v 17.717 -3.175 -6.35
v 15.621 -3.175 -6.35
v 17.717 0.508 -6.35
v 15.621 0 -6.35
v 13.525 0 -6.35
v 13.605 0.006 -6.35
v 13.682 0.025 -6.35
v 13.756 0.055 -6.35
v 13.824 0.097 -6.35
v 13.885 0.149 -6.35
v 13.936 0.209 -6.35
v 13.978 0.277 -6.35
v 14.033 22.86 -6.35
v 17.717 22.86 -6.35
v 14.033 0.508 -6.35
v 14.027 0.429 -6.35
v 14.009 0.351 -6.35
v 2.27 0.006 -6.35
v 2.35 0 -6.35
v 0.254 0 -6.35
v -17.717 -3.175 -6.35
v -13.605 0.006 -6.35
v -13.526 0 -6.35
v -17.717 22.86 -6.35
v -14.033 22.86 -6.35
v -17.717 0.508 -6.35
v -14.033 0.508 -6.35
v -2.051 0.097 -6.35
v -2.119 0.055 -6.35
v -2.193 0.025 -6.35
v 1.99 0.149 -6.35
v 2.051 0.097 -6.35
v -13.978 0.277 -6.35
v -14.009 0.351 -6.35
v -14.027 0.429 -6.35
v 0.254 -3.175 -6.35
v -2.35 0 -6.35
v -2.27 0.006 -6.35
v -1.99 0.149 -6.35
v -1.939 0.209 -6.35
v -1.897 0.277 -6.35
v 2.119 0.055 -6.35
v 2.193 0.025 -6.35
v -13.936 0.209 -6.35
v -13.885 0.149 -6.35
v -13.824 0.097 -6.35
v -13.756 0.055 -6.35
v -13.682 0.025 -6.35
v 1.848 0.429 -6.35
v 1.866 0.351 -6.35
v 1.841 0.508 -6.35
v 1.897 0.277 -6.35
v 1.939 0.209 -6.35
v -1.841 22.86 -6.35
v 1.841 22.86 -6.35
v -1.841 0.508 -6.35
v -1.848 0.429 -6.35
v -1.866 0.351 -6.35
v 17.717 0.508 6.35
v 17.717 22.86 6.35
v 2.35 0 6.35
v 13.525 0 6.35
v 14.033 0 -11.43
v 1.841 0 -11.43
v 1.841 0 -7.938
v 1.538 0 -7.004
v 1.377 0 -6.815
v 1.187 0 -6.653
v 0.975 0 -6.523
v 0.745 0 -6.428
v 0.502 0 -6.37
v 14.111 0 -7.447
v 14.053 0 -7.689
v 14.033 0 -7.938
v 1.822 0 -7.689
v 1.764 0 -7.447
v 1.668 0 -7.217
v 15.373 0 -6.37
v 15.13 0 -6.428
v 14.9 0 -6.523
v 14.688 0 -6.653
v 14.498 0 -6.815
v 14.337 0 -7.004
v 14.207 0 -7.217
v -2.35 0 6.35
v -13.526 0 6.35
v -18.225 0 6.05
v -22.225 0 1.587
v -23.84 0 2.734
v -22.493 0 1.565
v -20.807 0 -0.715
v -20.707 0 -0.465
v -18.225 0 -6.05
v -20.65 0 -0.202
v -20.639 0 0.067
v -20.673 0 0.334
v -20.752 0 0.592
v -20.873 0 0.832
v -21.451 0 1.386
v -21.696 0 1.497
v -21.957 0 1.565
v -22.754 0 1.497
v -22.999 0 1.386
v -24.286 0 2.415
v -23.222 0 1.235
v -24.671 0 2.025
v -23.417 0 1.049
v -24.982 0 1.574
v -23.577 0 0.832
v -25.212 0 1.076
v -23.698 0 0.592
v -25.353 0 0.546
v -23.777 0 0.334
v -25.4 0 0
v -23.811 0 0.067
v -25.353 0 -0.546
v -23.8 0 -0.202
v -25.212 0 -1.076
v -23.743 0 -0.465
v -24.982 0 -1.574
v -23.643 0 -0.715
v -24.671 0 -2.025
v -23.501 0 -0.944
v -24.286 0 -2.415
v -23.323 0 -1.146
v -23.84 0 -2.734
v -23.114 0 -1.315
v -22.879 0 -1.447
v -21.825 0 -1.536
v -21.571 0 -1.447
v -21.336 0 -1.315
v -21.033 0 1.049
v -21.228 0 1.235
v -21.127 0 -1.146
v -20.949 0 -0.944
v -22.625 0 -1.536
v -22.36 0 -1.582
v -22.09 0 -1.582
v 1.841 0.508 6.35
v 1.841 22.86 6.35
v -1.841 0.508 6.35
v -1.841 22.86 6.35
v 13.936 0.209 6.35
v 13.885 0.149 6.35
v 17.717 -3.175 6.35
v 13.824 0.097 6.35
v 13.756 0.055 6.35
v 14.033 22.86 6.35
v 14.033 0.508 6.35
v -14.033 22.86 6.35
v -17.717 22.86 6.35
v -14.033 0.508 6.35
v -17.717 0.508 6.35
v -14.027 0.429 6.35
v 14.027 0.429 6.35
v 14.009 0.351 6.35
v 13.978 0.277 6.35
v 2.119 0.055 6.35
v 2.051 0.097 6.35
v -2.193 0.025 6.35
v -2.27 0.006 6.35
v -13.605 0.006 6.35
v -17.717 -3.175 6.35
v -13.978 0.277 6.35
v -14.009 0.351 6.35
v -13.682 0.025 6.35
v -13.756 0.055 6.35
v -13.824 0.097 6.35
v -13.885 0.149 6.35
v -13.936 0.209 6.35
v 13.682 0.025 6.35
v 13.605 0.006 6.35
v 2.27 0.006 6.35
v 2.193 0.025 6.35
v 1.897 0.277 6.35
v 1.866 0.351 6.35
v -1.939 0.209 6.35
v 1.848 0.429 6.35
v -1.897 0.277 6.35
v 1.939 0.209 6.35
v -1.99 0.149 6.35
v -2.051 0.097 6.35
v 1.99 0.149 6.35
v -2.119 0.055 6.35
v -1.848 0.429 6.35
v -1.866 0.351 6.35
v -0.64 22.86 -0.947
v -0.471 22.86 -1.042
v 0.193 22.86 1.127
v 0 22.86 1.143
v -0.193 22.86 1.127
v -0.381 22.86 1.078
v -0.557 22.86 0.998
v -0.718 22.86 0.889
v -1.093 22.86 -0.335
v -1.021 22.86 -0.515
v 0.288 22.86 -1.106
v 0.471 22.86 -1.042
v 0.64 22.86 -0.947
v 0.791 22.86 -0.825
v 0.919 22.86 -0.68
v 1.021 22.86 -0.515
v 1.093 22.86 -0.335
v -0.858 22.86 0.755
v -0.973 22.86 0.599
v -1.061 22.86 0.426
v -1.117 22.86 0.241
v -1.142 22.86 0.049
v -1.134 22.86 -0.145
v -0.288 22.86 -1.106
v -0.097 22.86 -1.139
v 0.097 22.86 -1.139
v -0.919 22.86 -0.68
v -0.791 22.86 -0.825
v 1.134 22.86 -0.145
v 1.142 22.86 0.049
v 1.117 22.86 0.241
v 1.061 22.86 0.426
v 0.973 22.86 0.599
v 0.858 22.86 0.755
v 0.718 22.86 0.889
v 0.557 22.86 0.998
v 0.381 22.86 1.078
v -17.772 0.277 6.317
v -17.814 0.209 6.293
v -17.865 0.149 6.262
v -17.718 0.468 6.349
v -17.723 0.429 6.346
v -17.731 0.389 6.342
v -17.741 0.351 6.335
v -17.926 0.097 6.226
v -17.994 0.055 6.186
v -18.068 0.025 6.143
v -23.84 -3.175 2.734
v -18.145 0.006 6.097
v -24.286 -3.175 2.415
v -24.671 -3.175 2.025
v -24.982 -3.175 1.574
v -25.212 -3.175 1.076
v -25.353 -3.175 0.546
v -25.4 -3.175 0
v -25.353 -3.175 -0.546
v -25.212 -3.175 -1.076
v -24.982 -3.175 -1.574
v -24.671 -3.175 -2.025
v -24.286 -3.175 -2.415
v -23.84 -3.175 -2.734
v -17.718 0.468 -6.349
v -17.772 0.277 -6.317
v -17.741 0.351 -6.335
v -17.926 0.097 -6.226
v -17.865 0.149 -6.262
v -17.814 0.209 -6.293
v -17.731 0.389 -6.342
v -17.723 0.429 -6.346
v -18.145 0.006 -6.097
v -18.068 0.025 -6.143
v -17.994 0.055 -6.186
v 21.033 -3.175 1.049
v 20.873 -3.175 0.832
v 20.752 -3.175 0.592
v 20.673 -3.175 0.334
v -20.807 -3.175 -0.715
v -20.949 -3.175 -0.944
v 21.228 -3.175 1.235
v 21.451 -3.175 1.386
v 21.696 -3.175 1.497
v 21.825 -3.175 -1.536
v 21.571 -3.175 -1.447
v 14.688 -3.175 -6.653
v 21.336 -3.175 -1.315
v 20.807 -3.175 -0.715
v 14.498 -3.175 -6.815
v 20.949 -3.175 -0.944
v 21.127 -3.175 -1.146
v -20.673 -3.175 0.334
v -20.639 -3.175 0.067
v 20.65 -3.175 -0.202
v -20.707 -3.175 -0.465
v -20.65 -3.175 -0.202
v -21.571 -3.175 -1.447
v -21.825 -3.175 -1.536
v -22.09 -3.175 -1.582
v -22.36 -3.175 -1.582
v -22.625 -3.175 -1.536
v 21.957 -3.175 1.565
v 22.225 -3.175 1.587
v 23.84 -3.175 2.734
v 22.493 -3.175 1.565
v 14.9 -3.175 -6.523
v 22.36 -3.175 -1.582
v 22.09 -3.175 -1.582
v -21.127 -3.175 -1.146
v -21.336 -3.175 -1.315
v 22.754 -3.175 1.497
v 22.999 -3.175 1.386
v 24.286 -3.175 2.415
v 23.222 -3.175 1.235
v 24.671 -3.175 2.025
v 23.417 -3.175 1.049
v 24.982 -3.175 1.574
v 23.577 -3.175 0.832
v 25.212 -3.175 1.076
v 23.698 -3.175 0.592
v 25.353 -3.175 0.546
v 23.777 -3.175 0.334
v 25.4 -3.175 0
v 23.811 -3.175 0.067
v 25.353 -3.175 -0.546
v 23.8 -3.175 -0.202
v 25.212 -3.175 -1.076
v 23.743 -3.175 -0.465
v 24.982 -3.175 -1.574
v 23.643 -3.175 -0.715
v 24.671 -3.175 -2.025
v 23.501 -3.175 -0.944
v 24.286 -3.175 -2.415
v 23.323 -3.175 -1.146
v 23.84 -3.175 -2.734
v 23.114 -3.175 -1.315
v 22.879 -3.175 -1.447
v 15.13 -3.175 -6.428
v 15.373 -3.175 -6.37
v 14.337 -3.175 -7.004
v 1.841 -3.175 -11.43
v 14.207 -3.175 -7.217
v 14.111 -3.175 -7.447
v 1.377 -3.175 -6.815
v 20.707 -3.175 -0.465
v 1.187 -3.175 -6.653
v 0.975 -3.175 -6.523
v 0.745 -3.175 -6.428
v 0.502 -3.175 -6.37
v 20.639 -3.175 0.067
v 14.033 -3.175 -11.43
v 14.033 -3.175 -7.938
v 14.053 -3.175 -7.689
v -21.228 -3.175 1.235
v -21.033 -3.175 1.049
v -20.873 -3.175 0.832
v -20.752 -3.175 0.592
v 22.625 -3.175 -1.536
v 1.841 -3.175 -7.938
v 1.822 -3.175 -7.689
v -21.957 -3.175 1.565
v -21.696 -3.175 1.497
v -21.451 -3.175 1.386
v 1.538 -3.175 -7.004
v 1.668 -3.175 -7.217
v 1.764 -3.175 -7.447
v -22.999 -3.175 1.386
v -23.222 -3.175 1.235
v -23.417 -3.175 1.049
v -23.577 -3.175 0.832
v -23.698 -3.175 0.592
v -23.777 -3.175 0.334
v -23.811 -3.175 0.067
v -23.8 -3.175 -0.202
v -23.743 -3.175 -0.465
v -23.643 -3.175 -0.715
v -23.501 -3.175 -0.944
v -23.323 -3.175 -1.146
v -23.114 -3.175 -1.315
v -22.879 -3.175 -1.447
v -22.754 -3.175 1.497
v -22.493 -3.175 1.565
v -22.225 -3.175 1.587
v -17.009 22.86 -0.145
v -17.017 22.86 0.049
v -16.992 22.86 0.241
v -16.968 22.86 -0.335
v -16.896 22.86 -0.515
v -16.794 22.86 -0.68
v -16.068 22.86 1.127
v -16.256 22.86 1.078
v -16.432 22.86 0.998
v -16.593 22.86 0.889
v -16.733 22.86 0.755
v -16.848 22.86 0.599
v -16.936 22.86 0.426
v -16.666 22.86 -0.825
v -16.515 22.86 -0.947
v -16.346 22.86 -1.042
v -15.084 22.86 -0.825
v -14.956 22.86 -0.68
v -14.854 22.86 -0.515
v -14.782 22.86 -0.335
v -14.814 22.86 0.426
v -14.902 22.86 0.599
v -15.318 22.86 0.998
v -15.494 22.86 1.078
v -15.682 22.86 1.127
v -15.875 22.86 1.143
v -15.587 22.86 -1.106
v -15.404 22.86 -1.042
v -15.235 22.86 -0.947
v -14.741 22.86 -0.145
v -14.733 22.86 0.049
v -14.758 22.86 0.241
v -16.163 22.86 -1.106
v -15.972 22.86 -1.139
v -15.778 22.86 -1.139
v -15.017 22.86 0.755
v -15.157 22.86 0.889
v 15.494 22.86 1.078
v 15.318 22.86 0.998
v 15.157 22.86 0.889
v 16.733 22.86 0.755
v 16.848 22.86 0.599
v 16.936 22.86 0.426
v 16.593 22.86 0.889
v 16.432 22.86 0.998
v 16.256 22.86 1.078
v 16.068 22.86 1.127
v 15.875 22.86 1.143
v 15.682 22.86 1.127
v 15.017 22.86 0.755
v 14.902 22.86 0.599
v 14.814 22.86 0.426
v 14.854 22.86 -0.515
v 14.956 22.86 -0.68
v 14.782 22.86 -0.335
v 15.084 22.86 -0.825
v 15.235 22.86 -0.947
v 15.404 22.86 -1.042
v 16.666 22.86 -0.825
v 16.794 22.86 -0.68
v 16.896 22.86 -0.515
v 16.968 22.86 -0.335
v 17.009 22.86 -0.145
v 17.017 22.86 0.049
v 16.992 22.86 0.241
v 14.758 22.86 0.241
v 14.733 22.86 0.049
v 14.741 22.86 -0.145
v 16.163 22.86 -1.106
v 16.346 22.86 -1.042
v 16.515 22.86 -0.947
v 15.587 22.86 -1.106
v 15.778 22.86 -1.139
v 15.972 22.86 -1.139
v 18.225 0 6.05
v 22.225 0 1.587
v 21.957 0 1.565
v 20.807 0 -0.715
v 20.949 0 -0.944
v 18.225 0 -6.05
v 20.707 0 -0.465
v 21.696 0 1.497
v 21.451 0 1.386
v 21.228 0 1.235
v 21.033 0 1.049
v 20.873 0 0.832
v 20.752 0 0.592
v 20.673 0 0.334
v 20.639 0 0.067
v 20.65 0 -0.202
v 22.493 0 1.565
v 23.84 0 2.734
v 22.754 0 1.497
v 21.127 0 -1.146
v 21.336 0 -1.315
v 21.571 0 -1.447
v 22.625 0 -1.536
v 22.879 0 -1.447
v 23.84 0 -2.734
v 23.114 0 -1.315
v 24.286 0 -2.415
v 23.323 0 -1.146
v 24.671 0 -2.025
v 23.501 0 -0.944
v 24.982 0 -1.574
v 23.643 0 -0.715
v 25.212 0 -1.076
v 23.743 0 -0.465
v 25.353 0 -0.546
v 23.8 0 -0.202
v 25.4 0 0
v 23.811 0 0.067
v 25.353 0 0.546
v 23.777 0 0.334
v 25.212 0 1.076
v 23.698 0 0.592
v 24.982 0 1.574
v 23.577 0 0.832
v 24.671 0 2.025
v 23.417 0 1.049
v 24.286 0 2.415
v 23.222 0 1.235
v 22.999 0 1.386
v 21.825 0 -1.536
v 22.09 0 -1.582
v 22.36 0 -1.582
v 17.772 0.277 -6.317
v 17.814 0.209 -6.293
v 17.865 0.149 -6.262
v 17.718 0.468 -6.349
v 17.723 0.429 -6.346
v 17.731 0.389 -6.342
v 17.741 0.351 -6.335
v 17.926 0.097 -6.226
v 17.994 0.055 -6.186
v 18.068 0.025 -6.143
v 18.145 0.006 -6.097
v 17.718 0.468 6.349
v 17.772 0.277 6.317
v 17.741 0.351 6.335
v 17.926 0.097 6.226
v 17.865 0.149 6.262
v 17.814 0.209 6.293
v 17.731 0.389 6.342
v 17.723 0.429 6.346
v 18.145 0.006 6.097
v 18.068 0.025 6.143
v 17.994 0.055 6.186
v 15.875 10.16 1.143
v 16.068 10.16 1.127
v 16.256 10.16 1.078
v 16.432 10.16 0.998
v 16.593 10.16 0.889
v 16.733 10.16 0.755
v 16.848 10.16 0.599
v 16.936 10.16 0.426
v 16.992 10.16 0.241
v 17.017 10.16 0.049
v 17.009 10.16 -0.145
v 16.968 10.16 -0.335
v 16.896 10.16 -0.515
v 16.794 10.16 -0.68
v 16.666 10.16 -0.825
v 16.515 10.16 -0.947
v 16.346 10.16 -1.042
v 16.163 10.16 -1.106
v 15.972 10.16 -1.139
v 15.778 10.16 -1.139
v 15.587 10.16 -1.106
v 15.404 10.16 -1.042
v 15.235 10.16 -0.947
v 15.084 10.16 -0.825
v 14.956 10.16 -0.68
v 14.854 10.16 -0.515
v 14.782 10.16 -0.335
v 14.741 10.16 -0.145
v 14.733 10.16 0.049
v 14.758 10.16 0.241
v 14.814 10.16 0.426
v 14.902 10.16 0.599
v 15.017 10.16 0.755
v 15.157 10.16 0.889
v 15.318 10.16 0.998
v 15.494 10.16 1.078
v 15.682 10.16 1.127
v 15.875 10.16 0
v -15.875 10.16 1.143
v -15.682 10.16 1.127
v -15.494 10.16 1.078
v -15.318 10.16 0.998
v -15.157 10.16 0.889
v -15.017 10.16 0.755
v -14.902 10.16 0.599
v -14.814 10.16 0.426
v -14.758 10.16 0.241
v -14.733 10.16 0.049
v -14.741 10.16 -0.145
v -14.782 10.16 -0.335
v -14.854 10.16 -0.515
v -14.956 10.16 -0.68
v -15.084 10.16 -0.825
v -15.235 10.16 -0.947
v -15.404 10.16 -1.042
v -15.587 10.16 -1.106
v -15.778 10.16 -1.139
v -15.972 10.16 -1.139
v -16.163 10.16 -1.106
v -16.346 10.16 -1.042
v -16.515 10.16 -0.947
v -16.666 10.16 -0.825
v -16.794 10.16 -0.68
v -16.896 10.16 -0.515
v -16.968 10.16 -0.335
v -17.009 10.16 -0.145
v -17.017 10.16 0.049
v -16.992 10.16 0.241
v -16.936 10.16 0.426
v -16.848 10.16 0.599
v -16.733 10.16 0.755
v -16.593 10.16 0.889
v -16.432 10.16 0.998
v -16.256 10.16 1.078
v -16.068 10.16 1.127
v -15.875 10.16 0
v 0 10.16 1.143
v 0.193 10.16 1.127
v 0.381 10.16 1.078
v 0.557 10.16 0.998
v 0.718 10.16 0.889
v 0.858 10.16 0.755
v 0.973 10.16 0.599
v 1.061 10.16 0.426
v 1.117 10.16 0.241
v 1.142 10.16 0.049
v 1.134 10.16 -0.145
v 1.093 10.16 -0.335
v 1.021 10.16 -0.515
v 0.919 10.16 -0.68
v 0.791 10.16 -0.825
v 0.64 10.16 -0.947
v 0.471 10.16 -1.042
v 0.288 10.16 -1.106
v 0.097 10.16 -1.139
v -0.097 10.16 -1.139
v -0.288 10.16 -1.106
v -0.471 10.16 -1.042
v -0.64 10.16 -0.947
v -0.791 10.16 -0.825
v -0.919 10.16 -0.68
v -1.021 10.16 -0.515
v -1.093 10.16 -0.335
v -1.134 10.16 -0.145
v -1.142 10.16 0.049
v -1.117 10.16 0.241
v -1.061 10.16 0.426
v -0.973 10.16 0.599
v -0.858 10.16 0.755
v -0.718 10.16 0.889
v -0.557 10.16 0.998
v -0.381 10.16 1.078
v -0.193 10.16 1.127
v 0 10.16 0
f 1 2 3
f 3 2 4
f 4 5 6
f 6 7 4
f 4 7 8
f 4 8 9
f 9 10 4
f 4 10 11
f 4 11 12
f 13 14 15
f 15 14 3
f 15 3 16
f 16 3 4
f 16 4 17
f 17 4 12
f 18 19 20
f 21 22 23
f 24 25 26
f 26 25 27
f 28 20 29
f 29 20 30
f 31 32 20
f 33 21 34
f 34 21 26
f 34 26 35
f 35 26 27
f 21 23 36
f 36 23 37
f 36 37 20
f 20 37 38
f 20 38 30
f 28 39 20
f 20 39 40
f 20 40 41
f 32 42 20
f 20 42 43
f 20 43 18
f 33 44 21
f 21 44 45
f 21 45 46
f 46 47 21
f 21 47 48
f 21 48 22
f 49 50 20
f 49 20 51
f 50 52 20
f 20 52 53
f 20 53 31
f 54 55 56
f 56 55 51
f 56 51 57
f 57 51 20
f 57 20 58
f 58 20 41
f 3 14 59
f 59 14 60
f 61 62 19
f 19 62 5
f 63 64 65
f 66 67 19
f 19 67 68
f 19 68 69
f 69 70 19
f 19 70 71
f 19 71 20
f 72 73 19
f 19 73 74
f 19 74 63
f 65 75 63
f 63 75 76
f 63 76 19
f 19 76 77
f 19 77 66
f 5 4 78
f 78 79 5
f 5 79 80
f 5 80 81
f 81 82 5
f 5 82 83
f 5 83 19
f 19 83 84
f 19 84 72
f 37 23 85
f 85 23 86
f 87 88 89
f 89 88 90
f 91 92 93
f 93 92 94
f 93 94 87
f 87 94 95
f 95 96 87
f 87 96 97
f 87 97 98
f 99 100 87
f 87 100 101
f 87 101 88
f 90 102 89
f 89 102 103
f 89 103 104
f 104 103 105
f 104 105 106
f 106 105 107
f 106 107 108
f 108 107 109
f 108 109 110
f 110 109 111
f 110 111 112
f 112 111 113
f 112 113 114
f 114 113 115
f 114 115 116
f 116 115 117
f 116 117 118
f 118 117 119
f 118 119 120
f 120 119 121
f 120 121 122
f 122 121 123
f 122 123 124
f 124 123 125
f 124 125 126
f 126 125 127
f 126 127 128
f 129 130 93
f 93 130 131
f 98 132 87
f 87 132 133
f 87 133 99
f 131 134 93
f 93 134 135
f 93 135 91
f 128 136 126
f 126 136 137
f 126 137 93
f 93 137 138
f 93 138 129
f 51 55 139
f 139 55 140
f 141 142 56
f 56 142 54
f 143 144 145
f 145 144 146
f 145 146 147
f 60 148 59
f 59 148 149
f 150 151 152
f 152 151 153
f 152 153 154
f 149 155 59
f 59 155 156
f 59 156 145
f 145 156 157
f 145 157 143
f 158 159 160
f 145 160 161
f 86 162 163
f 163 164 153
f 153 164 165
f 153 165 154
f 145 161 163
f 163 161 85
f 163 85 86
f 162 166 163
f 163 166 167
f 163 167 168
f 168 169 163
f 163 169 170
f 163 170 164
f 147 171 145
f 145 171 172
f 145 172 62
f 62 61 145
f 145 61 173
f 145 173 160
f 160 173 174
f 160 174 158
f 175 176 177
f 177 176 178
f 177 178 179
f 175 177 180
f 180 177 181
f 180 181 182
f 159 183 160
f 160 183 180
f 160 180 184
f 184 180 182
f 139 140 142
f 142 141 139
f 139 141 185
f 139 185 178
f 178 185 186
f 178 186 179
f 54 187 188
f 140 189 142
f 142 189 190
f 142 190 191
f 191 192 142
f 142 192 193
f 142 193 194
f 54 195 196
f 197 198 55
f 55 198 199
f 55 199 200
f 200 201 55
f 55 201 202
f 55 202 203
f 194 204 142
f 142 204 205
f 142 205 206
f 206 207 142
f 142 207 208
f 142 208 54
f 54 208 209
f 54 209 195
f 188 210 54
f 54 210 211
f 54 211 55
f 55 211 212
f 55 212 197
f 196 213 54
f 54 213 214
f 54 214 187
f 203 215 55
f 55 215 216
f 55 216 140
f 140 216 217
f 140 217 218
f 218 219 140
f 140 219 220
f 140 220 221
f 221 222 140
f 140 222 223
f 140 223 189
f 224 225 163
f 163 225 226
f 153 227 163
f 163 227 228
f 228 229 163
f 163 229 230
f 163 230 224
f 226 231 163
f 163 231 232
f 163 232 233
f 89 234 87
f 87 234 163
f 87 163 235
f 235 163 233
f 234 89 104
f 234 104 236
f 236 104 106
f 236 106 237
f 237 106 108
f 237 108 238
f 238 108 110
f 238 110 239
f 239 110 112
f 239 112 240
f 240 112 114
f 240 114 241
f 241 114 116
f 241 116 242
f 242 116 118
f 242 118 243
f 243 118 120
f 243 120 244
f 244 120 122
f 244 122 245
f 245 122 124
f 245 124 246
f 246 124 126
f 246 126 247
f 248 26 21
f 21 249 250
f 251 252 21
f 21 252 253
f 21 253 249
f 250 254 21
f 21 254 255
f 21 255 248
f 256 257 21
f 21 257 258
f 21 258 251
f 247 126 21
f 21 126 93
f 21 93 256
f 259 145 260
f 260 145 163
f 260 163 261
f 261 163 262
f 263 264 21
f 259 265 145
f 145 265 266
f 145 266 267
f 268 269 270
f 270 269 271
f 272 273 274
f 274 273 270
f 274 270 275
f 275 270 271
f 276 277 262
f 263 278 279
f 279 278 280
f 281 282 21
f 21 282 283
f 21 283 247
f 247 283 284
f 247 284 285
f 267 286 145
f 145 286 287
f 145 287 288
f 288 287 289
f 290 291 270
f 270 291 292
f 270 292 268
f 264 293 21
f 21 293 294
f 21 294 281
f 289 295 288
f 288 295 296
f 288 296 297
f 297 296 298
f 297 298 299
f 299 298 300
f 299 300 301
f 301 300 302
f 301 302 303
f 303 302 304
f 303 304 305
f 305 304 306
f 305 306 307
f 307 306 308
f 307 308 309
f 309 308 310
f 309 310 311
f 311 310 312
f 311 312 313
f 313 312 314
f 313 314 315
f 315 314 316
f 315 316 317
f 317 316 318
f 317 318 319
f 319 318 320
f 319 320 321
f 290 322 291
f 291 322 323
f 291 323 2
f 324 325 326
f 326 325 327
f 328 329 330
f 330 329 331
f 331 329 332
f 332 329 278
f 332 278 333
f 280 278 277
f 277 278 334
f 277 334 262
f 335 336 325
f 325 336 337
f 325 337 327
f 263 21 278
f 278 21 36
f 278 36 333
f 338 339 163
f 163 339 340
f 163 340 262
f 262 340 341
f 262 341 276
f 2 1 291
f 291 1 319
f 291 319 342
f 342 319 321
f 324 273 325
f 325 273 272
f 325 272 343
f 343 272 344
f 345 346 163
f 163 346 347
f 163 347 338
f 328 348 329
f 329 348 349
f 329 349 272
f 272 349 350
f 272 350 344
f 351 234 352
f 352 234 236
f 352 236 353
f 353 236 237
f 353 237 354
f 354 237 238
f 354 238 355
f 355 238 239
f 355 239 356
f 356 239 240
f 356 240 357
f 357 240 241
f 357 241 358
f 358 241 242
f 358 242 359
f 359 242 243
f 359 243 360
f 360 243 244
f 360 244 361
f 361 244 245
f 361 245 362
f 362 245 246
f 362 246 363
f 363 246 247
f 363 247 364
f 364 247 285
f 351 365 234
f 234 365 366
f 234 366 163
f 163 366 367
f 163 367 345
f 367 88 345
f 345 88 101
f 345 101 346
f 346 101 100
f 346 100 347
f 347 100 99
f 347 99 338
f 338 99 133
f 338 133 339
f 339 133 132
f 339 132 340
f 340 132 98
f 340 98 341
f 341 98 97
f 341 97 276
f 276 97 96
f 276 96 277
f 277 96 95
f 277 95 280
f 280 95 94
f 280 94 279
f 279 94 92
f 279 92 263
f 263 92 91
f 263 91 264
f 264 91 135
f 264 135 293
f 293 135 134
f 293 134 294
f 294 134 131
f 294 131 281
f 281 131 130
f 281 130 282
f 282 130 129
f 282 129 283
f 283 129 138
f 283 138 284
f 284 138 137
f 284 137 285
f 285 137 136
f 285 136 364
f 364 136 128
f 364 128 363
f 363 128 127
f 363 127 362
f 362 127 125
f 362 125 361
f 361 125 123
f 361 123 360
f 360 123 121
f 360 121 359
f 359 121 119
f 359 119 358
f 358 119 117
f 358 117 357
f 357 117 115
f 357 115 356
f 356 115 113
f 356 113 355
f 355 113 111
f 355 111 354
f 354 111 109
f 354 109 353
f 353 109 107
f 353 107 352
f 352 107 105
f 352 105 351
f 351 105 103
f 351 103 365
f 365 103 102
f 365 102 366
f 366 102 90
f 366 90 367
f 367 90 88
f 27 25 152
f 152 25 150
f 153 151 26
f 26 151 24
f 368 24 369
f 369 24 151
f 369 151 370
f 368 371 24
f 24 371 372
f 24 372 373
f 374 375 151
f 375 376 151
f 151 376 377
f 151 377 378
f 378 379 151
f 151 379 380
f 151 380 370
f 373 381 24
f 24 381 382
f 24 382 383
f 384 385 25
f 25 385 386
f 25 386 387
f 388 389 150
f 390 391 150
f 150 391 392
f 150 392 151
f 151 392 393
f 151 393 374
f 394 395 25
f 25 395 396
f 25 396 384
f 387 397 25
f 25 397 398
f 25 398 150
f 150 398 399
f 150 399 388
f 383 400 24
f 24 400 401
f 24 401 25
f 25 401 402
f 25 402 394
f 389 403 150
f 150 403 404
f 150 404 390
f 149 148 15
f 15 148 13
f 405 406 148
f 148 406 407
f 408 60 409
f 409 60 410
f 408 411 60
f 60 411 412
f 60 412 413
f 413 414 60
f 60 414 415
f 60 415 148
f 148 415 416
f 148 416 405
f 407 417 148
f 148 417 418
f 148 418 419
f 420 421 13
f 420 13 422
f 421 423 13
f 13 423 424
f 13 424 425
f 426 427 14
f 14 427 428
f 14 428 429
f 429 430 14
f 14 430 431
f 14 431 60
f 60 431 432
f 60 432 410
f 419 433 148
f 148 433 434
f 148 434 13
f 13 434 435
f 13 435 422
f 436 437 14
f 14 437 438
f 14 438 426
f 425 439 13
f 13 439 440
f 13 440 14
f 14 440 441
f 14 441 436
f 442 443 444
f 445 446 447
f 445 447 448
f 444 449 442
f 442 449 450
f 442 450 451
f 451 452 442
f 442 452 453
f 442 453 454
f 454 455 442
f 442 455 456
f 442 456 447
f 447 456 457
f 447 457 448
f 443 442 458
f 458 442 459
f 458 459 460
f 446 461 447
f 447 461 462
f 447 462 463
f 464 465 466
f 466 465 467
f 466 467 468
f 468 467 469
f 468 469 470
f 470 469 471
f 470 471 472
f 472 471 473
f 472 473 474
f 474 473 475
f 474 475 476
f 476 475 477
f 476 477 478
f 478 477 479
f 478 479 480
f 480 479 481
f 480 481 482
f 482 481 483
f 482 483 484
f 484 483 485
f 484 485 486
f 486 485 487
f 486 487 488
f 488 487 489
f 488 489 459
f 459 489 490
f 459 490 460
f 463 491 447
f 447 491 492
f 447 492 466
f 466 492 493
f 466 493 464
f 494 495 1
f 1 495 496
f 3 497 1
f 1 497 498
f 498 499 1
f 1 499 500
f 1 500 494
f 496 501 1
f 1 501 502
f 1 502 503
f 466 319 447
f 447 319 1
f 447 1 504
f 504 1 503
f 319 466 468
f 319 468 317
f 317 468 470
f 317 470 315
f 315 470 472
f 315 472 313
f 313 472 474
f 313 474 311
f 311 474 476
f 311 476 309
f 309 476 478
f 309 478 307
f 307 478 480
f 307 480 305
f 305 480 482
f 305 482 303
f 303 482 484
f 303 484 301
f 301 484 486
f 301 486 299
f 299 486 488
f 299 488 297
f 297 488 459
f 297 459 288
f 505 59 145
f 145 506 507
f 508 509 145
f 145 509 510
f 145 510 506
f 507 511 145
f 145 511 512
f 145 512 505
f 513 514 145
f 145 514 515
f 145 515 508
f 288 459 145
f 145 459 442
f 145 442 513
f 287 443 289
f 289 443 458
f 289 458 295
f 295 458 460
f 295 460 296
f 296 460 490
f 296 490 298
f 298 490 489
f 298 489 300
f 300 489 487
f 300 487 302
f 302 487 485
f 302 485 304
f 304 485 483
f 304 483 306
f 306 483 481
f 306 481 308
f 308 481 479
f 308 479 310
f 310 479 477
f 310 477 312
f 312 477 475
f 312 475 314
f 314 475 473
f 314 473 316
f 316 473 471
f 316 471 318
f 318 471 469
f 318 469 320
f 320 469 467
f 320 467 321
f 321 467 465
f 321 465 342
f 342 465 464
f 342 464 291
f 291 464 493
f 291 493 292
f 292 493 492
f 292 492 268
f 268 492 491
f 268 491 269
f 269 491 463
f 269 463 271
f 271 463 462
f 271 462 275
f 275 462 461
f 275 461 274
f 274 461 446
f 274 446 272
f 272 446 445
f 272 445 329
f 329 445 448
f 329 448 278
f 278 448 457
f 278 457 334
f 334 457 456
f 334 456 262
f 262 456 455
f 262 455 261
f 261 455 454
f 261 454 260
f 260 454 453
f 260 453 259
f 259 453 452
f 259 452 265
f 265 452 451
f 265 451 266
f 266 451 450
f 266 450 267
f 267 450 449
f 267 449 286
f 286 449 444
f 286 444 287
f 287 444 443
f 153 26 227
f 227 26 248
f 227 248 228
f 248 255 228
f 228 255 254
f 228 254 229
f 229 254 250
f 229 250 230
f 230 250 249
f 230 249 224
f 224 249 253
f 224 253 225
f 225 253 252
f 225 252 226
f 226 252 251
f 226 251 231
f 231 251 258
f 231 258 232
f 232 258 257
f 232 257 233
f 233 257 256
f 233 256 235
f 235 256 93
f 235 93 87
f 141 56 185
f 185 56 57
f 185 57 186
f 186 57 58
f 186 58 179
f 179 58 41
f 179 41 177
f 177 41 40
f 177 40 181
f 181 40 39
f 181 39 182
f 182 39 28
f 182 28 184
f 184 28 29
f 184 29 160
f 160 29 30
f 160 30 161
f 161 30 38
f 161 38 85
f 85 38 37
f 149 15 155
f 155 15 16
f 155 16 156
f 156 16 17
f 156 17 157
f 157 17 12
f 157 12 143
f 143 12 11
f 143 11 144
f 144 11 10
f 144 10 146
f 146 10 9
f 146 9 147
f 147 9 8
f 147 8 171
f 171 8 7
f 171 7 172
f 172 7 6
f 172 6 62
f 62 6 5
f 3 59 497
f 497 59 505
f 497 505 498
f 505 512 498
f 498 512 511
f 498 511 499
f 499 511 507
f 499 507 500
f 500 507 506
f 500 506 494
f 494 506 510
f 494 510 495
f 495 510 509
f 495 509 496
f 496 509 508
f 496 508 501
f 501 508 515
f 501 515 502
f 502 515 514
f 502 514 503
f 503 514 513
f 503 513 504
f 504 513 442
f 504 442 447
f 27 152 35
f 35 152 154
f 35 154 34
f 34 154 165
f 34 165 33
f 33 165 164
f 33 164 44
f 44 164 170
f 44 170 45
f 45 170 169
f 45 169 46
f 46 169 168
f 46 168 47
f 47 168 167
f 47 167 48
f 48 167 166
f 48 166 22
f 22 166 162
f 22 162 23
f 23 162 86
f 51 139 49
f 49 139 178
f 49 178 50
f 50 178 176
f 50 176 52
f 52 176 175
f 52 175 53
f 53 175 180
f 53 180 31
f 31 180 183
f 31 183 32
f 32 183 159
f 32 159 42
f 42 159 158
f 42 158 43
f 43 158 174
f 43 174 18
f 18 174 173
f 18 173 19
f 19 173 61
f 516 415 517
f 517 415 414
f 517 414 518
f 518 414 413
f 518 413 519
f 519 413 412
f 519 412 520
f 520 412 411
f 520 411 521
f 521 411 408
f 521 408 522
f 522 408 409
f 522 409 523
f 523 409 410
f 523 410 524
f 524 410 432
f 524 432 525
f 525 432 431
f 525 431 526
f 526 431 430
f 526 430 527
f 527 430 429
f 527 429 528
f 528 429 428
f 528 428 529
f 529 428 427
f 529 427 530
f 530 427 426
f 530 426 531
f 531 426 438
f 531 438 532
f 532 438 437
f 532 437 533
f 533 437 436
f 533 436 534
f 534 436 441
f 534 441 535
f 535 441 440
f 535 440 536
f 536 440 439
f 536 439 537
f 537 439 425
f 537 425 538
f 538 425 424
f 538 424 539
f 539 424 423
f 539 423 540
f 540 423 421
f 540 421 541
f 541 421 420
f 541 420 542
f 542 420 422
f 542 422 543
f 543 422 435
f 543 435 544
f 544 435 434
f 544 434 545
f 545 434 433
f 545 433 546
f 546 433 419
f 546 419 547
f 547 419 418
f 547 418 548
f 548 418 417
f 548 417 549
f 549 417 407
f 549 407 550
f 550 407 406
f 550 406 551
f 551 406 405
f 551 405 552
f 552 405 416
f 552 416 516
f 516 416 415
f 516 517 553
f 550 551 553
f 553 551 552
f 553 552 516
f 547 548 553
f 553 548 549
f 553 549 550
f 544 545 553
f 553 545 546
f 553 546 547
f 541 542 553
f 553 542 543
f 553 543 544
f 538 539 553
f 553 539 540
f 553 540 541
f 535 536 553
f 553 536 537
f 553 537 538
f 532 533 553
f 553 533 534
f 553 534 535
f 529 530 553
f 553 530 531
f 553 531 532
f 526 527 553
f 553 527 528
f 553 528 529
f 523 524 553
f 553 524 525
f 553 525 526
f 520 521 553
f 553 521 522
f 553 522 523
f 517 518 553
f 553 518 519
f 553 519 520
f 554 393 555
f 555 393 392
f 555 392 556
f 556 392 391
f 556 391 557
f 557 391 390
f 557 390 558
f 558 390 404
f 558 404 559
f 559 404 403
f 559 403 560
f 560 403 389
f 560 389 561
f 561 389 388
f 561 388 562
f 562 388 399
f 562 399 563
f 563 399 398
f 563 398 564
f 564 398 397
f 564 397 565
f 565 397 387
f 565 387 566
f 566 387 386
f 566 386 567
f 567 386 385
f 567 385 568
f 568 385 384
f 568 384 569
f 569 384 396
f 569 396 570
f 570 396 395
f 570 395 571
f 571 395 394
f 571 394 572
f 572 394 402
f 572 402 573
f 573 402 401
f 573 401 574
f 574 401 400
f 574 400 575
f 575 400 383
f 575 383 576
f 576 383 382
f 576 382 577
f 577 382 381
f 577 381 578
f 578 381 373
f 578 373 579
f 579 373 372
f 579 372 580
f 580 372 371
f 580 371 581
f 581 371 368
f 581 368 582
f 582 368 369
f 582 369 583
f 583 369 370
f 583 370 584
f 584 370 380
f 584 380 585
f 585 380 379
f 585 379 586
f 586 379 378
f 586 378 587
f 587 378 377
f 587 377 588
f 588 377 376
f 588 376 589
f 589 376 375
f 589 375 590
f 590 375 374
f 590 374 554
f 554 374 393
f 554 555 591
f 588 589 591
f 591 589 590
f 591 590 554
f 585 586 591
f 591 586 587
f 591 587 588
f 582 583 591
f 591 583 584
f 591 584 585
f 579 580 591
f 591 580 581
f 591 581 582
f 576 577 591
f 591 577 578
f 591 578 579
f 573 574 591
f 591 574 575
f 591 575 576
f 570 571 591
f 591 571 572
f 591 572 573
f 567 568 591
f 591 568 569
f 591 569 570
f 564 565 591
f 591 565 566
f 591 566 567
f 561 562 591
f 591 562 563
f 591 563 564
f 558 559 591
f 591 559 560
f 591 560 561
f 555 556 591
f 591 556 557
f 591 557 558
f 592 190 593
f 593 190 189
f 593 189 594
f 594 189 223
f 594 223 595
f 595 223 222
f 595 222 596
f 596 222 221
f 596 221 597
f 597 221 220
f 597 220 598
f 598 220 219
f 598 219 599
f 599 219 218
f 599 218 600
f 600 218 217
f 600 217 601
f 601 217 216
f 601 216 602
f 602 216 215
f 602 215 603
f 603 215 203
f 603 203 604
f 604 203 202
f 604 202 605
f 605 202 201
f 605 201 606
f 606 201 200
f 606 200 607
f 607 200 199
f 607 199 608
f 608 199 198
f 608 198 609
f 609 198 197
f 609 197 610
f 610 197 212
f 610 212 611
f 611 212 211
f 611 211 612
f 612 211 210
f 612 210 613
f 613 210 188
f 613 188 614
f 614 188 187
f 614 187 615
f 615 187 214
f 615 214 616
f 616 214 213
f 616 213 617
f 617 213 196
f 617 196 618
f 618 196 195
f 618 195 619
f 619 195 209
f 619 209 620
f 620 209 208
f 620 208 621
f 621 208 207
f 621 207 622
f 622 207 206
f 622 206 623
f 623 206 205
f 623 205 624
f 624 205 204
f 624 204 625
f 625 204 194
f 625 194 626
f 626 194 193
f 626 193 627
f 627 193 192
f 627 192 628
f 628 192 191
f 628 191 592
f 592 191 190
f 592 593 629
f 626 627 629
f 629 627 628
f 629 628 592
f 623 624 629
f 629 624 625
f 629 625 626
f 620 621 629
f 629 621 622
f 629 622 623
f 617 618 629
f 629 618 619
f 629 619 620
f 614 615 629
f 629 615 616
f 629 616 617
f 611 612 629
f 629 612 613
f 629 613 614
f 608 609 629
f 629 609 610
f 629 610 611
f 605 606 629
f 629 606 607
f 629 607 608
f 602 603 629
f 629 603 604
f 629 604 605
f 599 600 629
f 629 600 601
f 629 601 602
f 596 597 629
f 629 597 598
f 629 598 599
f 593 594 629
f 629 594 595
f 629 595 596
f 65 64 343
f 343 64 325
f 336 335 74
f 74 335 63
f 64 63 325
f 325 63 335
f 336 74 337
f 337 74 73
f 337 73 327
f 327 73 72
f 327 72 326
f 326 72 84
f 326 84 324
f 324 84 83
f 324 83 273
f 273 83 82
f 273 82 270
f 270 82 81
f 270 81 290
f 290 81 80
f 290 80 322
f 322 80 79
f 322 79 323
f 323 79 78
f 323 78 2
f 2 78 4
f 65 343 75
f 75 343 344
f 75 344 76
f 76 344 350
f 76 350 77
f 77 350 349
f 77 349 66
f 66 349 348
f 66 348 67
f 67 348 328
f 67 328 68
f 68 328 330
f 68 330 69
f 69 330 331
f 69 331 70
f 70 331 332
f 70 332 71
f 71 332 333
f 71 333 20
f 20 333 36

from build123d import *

# Parameters (mm, degrees)
SKETCH1_W             = 3.683
SKETCH1_H             = 12.7
BOSS_EXTRUDE1_DEPTH   = 22.86
BOSS_EXTRUDE1_2_DEPTH = 22.86
BOSS_EXTRUDE1_3_DEPTH = 22.86
SKETCH2_R             = 1.5875
BOSS_EXTRUDE2_DEPTH   = 3.175
FILLET1_R             = 0.508
SKETCH3_R             = 1.143
CUT_EXTRUDE1_DEPTH    = 12.7
SKETCH4_W             = 12.192
SKETCH4_H             = 3.175
BOSS_EXTRUDE3_DEPTH   = 5.08
FILLET2_R             = 1.5875


with BuildPart() as part:
    # Sketch1 → Boss-Extrude1 (new body)
    with BuildSketch(Plane(origin=(0, 0, 0), x_dir=(1, 0, 0), z_dir=(0, 1, 0))):
        Rectangle(SKETCH1_W, SKETCH1_H)
    extrude(amount=BOSS_EXTRUDE1_DEPTH)



with BuildPart() as body_2:
    # Sketch1 → Boss-Extrude1 2 (new body)
    with BuildSketch(Plane(origin=(0, 0, 0), x_dir=(1, 0, 0), z_dir=(0, 1, 0))):
        with Locations((-15.875, 0)):
            Rectangle(SKETCH1_W, SKETCH1_H)
    extrude(amount=BOSS_EXTRUDE1_2_DEPTH)


with BuildPart() as body_3:
    # Sketch1 → Boss-Extrude1 3 (new body)
    with BuildSketch(Plane(origin=(0, 0, 0), x_dir=(1, 0, 0), z_dir=(0, 1, 0))):
        with Locations((15.875, 0)):
            Rectangle(SKETCH1_W, SKETCH1_H)
    extrude(amount=BOSS_EXTRUDE1_3_DEPTH)


with BuildPart() as part_1:
    add(part.part)

    add(body_2.part)  # Boss-Extrude2 merges body 2

    add(body_3.part)  # Boss-Extrude2 merges body 3
    # Sketch2 → Boss-Extrude2 (add)
    with BuildSketch(Plane(origin=(0, 0, 0), x_dir=(1, 0, 0), z_dir=(0, 1, 0))):
        with BuildLine():
            Line((-23.839553388, -2.733832906), (-17.7165, -6.35))
            Line((-17.7165, -6.35), (17.7165, -6.35))
            Line((17.7165, -6.35), (17.7165, 6.35))
            Line((17.7165, 6.35), (-17.7165, 6.35))
            Line((-17.7165, 6.35), (-23.839553388, 2.733832906))
            ThreePointArc((-23.839553388, 2.733832906), (-25.4, 0), (-23.839553388, -2.733832906))
        make_face()
        with Locations(Location((-22.225, 0, 0), (0, 0, 270))):
            Circle(SKETCH2_R, mode=Mode.SUBTRACT)
    boss_extrude2 = extrude(amount=-BOSS_EXTRUDE2_DEPTH)

    # Mirror1: Boss-Extrude2 across plane
    add(boss_extrude2.mirror(Plane(origin=(0, 0, 0), x_dir=(0, 0, 1), z_dir=(1, 0, 0))))

    # Fillet1
    fillet1_edges = [part_1.edges().sort_by_distance(p)[0] for p in [
        (-14.0335, 0, 0),
        (-17.7165, 0, 0),
        (14.0335, 0, 0),
        (-1.8415, 0, 0),
        (17.7165, 0, 0),
        (1.8415, 0, 0),
    ]]
    fillet(fillet1_edges, radius=FILLET1_R)

    # Sketch3 → Cut-Extrude1 (cut)
    with BuildSketch(Plane(origin=(0, 22.86, 0), x_dir=(1, 0, 0), z_dir=(0, 1, 0))):
        with Locations(Location((15.875, 0, 0), (0, 0, 270))):
            Circle(SKETCH3_R)
        with Locations(Location((0, 0, 0), (0, 0, 270))):
            Circle(SKETCH3_R)
        with Locations(Location((-15.875, 0, 0), (0, 0, 270))):
            Circle(SKETCH3_R)
    extrude(amount=-CUT_EXTRUDE1_DEPTH, mode=Mode.SUBTRACT)

    # Sketch4 → Boss-Extrude3 (add)
    with BuildSketch(Plane(origin=(0, 0, -6.35), x_dir=(-1, 0, 0), z_dir=(0, 0, -1))):
        with Locations((-7.9375, -1.5875)):
            Rectangle(SKETCH4_W, SKETCH4_H)
    extrude(amount=BOSS_EXTRUDE3_DEPTH)

    # Fillet2
    fillet2_edges = [part_1.edges().sort_by_distance(p)[0] for p in [
        (1.8415, -1.5875, -6.35),
        (14.0335, -1.5875, -6.35),
    ]]
    fillet(fillet2_edges, radius=FILLET2_R)


solid = part_1.part
